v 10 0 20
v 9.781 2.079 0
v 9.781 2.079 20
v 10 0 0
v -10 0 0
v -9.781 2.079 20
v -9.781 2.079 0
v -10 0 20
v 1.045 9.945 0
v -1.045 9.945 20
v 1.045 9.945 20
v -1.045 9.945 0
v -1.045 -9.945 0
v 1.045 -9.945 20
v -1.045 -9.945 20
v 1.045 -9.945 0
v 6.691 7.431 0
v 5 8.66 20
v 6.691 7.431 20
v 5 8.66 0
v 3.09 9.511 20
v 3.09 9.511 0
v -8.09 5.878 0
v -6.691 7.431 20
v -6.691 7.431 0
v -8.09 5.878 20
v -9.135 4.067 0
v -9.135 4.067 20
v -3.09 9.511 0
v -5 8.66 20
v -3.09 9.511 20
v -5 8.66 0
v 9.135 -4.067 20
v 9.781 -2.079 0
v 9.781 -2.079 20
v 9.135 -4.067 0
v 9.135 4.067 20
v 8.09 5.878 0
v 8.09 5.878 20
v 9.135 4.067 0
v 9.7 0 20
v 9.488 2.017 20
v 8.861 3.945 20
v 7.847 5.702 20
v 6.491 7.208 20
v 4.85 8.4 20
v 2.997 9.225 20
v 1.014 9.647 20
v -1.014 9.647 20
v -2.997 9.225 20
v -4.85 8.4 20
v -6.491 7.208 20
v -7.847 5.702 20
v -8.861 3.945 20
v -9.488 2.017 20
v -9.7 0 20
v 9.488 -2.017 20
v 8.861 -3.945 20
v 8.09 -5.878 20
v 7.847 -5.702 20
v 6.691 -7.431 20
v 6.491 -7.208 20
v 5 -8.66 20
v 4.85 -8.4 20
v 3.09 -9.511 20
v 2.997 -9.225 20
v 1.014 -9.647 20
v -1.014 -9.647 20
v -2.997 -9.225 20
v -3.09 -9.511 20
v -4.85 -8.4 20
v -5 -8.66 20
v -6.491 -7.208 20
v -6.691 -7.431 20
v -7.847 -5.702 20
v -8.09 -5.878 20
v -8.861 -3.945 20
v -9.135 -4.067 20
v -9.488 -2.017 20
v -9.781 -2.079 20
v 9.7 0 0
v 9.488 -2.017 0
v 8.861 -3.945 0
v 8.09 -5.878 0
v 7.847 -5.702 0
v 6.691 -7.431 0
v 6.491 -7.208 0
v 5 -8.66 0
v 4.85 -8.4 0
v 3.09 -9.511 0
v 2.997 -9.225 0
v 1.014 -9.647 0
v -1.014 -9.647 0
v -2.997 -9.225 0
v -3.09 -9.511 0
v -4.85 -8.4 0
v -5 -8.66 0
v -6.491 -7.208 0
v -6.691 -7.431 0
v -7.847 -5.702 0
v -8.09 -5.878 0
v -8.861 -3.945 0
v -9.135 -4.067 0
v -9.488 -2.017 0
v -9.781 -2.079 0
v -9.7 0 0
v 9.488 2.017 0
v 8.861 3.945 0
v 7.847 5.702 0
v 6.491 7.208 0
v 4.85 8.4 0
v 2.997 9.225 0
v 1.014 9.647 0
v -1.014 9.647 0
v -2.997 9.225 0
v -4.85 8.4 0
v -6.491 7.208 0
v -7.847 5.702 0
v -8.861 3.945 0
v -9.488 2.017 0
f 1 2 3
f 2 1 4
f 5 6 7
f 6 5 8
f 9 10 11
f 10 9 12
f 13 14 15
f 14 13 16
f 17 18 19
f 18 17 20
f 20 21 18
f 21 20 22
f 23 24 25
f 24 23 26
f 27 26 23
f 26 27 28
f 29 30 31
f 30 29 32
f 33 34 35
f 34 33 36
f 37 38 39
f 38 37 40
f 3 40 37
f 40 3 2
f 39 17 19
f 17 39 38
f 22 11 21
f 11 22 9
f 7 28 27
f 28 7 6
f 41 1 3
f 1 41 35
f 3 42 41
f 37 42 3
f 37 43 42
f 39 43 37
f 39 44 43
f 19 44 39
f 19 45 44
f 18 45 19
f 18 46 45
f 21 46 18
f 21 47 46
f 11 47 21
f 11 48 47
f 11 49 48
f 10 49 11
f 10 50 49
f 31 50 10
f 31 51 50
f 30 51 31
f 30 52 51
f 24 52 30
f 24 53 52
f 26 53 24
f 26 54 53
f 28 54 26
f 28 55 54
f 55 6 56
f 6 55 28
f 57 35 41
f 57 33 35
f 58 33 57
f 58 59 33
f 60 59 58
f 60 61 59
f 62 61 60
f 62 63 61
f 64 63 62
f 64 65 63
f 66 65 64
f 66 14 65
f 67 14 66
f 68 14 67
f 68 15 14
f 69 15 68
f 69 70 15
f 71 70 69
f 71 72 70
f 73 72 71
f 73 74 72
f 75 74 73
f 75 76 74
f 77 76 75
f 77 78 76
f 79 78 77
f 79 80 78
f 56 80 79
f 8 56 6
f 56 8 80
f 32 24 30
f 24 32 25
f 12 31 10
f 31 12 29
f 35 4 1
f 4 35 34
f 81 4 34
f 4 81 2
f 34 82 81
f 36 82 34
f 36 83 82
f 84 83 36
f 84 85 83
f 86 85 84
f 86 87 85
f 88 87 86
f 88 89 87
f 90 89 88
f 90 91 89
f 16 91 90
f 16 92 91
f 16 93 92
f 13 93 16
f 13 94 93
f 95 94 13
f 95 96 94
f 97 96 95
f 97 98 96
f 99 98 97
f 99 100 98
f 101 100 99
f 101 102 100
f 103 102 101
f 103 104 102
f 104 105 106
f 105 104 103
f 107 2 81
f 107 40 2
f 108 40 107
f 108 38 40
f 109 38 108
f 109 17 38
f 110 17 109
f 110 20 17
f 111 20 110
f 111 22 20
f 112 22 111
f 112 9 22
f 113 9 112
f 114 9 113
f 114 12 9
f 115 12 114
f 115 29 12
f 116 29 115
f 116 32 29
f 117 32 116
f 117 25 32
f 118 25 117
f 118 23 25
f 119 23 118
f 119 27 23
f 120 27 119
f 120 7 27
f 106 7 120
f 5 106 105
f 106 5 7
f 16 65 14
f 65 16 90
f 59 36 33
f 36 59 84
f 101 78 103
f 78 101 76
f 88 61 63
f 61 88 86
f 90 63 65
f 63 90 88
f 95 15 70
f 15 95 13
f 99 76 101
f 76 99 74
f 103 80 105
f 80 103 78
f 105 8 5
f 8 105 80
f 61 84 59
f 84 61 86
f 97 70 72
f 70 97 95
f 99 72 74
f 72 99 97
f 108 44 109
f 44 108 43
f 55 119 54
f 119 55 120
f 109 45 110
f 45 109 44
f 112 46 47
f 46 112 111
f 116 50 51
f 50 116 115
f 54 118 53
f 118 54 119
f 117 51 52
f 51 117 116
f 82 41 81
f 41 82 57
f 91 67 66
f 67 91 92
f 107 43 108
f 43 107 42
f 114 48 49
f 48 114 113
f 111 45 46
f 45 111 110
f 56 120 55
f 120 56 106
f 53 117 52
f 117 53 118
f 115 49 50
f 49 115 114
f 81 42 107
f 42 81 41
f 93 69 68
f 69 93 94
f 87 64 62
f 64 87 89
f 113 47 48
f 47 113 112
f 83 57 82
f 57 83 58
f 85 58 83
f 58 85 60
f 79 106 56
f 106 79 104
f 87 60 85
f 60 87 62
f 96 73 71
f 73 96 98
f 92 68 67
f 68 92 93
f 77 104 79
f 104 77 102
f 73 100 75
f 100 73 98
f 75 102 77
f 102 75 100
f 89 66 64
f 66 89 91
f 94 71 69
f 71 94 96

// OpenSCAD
diameter = 20;
height = 20;
width = 0.6;

difference() {
  cylinder(r=diameter / 2, h=height);
  translate([0, 0, -1]) cylinder(r=(diameter - width) / 2, h=height + 2);
}
